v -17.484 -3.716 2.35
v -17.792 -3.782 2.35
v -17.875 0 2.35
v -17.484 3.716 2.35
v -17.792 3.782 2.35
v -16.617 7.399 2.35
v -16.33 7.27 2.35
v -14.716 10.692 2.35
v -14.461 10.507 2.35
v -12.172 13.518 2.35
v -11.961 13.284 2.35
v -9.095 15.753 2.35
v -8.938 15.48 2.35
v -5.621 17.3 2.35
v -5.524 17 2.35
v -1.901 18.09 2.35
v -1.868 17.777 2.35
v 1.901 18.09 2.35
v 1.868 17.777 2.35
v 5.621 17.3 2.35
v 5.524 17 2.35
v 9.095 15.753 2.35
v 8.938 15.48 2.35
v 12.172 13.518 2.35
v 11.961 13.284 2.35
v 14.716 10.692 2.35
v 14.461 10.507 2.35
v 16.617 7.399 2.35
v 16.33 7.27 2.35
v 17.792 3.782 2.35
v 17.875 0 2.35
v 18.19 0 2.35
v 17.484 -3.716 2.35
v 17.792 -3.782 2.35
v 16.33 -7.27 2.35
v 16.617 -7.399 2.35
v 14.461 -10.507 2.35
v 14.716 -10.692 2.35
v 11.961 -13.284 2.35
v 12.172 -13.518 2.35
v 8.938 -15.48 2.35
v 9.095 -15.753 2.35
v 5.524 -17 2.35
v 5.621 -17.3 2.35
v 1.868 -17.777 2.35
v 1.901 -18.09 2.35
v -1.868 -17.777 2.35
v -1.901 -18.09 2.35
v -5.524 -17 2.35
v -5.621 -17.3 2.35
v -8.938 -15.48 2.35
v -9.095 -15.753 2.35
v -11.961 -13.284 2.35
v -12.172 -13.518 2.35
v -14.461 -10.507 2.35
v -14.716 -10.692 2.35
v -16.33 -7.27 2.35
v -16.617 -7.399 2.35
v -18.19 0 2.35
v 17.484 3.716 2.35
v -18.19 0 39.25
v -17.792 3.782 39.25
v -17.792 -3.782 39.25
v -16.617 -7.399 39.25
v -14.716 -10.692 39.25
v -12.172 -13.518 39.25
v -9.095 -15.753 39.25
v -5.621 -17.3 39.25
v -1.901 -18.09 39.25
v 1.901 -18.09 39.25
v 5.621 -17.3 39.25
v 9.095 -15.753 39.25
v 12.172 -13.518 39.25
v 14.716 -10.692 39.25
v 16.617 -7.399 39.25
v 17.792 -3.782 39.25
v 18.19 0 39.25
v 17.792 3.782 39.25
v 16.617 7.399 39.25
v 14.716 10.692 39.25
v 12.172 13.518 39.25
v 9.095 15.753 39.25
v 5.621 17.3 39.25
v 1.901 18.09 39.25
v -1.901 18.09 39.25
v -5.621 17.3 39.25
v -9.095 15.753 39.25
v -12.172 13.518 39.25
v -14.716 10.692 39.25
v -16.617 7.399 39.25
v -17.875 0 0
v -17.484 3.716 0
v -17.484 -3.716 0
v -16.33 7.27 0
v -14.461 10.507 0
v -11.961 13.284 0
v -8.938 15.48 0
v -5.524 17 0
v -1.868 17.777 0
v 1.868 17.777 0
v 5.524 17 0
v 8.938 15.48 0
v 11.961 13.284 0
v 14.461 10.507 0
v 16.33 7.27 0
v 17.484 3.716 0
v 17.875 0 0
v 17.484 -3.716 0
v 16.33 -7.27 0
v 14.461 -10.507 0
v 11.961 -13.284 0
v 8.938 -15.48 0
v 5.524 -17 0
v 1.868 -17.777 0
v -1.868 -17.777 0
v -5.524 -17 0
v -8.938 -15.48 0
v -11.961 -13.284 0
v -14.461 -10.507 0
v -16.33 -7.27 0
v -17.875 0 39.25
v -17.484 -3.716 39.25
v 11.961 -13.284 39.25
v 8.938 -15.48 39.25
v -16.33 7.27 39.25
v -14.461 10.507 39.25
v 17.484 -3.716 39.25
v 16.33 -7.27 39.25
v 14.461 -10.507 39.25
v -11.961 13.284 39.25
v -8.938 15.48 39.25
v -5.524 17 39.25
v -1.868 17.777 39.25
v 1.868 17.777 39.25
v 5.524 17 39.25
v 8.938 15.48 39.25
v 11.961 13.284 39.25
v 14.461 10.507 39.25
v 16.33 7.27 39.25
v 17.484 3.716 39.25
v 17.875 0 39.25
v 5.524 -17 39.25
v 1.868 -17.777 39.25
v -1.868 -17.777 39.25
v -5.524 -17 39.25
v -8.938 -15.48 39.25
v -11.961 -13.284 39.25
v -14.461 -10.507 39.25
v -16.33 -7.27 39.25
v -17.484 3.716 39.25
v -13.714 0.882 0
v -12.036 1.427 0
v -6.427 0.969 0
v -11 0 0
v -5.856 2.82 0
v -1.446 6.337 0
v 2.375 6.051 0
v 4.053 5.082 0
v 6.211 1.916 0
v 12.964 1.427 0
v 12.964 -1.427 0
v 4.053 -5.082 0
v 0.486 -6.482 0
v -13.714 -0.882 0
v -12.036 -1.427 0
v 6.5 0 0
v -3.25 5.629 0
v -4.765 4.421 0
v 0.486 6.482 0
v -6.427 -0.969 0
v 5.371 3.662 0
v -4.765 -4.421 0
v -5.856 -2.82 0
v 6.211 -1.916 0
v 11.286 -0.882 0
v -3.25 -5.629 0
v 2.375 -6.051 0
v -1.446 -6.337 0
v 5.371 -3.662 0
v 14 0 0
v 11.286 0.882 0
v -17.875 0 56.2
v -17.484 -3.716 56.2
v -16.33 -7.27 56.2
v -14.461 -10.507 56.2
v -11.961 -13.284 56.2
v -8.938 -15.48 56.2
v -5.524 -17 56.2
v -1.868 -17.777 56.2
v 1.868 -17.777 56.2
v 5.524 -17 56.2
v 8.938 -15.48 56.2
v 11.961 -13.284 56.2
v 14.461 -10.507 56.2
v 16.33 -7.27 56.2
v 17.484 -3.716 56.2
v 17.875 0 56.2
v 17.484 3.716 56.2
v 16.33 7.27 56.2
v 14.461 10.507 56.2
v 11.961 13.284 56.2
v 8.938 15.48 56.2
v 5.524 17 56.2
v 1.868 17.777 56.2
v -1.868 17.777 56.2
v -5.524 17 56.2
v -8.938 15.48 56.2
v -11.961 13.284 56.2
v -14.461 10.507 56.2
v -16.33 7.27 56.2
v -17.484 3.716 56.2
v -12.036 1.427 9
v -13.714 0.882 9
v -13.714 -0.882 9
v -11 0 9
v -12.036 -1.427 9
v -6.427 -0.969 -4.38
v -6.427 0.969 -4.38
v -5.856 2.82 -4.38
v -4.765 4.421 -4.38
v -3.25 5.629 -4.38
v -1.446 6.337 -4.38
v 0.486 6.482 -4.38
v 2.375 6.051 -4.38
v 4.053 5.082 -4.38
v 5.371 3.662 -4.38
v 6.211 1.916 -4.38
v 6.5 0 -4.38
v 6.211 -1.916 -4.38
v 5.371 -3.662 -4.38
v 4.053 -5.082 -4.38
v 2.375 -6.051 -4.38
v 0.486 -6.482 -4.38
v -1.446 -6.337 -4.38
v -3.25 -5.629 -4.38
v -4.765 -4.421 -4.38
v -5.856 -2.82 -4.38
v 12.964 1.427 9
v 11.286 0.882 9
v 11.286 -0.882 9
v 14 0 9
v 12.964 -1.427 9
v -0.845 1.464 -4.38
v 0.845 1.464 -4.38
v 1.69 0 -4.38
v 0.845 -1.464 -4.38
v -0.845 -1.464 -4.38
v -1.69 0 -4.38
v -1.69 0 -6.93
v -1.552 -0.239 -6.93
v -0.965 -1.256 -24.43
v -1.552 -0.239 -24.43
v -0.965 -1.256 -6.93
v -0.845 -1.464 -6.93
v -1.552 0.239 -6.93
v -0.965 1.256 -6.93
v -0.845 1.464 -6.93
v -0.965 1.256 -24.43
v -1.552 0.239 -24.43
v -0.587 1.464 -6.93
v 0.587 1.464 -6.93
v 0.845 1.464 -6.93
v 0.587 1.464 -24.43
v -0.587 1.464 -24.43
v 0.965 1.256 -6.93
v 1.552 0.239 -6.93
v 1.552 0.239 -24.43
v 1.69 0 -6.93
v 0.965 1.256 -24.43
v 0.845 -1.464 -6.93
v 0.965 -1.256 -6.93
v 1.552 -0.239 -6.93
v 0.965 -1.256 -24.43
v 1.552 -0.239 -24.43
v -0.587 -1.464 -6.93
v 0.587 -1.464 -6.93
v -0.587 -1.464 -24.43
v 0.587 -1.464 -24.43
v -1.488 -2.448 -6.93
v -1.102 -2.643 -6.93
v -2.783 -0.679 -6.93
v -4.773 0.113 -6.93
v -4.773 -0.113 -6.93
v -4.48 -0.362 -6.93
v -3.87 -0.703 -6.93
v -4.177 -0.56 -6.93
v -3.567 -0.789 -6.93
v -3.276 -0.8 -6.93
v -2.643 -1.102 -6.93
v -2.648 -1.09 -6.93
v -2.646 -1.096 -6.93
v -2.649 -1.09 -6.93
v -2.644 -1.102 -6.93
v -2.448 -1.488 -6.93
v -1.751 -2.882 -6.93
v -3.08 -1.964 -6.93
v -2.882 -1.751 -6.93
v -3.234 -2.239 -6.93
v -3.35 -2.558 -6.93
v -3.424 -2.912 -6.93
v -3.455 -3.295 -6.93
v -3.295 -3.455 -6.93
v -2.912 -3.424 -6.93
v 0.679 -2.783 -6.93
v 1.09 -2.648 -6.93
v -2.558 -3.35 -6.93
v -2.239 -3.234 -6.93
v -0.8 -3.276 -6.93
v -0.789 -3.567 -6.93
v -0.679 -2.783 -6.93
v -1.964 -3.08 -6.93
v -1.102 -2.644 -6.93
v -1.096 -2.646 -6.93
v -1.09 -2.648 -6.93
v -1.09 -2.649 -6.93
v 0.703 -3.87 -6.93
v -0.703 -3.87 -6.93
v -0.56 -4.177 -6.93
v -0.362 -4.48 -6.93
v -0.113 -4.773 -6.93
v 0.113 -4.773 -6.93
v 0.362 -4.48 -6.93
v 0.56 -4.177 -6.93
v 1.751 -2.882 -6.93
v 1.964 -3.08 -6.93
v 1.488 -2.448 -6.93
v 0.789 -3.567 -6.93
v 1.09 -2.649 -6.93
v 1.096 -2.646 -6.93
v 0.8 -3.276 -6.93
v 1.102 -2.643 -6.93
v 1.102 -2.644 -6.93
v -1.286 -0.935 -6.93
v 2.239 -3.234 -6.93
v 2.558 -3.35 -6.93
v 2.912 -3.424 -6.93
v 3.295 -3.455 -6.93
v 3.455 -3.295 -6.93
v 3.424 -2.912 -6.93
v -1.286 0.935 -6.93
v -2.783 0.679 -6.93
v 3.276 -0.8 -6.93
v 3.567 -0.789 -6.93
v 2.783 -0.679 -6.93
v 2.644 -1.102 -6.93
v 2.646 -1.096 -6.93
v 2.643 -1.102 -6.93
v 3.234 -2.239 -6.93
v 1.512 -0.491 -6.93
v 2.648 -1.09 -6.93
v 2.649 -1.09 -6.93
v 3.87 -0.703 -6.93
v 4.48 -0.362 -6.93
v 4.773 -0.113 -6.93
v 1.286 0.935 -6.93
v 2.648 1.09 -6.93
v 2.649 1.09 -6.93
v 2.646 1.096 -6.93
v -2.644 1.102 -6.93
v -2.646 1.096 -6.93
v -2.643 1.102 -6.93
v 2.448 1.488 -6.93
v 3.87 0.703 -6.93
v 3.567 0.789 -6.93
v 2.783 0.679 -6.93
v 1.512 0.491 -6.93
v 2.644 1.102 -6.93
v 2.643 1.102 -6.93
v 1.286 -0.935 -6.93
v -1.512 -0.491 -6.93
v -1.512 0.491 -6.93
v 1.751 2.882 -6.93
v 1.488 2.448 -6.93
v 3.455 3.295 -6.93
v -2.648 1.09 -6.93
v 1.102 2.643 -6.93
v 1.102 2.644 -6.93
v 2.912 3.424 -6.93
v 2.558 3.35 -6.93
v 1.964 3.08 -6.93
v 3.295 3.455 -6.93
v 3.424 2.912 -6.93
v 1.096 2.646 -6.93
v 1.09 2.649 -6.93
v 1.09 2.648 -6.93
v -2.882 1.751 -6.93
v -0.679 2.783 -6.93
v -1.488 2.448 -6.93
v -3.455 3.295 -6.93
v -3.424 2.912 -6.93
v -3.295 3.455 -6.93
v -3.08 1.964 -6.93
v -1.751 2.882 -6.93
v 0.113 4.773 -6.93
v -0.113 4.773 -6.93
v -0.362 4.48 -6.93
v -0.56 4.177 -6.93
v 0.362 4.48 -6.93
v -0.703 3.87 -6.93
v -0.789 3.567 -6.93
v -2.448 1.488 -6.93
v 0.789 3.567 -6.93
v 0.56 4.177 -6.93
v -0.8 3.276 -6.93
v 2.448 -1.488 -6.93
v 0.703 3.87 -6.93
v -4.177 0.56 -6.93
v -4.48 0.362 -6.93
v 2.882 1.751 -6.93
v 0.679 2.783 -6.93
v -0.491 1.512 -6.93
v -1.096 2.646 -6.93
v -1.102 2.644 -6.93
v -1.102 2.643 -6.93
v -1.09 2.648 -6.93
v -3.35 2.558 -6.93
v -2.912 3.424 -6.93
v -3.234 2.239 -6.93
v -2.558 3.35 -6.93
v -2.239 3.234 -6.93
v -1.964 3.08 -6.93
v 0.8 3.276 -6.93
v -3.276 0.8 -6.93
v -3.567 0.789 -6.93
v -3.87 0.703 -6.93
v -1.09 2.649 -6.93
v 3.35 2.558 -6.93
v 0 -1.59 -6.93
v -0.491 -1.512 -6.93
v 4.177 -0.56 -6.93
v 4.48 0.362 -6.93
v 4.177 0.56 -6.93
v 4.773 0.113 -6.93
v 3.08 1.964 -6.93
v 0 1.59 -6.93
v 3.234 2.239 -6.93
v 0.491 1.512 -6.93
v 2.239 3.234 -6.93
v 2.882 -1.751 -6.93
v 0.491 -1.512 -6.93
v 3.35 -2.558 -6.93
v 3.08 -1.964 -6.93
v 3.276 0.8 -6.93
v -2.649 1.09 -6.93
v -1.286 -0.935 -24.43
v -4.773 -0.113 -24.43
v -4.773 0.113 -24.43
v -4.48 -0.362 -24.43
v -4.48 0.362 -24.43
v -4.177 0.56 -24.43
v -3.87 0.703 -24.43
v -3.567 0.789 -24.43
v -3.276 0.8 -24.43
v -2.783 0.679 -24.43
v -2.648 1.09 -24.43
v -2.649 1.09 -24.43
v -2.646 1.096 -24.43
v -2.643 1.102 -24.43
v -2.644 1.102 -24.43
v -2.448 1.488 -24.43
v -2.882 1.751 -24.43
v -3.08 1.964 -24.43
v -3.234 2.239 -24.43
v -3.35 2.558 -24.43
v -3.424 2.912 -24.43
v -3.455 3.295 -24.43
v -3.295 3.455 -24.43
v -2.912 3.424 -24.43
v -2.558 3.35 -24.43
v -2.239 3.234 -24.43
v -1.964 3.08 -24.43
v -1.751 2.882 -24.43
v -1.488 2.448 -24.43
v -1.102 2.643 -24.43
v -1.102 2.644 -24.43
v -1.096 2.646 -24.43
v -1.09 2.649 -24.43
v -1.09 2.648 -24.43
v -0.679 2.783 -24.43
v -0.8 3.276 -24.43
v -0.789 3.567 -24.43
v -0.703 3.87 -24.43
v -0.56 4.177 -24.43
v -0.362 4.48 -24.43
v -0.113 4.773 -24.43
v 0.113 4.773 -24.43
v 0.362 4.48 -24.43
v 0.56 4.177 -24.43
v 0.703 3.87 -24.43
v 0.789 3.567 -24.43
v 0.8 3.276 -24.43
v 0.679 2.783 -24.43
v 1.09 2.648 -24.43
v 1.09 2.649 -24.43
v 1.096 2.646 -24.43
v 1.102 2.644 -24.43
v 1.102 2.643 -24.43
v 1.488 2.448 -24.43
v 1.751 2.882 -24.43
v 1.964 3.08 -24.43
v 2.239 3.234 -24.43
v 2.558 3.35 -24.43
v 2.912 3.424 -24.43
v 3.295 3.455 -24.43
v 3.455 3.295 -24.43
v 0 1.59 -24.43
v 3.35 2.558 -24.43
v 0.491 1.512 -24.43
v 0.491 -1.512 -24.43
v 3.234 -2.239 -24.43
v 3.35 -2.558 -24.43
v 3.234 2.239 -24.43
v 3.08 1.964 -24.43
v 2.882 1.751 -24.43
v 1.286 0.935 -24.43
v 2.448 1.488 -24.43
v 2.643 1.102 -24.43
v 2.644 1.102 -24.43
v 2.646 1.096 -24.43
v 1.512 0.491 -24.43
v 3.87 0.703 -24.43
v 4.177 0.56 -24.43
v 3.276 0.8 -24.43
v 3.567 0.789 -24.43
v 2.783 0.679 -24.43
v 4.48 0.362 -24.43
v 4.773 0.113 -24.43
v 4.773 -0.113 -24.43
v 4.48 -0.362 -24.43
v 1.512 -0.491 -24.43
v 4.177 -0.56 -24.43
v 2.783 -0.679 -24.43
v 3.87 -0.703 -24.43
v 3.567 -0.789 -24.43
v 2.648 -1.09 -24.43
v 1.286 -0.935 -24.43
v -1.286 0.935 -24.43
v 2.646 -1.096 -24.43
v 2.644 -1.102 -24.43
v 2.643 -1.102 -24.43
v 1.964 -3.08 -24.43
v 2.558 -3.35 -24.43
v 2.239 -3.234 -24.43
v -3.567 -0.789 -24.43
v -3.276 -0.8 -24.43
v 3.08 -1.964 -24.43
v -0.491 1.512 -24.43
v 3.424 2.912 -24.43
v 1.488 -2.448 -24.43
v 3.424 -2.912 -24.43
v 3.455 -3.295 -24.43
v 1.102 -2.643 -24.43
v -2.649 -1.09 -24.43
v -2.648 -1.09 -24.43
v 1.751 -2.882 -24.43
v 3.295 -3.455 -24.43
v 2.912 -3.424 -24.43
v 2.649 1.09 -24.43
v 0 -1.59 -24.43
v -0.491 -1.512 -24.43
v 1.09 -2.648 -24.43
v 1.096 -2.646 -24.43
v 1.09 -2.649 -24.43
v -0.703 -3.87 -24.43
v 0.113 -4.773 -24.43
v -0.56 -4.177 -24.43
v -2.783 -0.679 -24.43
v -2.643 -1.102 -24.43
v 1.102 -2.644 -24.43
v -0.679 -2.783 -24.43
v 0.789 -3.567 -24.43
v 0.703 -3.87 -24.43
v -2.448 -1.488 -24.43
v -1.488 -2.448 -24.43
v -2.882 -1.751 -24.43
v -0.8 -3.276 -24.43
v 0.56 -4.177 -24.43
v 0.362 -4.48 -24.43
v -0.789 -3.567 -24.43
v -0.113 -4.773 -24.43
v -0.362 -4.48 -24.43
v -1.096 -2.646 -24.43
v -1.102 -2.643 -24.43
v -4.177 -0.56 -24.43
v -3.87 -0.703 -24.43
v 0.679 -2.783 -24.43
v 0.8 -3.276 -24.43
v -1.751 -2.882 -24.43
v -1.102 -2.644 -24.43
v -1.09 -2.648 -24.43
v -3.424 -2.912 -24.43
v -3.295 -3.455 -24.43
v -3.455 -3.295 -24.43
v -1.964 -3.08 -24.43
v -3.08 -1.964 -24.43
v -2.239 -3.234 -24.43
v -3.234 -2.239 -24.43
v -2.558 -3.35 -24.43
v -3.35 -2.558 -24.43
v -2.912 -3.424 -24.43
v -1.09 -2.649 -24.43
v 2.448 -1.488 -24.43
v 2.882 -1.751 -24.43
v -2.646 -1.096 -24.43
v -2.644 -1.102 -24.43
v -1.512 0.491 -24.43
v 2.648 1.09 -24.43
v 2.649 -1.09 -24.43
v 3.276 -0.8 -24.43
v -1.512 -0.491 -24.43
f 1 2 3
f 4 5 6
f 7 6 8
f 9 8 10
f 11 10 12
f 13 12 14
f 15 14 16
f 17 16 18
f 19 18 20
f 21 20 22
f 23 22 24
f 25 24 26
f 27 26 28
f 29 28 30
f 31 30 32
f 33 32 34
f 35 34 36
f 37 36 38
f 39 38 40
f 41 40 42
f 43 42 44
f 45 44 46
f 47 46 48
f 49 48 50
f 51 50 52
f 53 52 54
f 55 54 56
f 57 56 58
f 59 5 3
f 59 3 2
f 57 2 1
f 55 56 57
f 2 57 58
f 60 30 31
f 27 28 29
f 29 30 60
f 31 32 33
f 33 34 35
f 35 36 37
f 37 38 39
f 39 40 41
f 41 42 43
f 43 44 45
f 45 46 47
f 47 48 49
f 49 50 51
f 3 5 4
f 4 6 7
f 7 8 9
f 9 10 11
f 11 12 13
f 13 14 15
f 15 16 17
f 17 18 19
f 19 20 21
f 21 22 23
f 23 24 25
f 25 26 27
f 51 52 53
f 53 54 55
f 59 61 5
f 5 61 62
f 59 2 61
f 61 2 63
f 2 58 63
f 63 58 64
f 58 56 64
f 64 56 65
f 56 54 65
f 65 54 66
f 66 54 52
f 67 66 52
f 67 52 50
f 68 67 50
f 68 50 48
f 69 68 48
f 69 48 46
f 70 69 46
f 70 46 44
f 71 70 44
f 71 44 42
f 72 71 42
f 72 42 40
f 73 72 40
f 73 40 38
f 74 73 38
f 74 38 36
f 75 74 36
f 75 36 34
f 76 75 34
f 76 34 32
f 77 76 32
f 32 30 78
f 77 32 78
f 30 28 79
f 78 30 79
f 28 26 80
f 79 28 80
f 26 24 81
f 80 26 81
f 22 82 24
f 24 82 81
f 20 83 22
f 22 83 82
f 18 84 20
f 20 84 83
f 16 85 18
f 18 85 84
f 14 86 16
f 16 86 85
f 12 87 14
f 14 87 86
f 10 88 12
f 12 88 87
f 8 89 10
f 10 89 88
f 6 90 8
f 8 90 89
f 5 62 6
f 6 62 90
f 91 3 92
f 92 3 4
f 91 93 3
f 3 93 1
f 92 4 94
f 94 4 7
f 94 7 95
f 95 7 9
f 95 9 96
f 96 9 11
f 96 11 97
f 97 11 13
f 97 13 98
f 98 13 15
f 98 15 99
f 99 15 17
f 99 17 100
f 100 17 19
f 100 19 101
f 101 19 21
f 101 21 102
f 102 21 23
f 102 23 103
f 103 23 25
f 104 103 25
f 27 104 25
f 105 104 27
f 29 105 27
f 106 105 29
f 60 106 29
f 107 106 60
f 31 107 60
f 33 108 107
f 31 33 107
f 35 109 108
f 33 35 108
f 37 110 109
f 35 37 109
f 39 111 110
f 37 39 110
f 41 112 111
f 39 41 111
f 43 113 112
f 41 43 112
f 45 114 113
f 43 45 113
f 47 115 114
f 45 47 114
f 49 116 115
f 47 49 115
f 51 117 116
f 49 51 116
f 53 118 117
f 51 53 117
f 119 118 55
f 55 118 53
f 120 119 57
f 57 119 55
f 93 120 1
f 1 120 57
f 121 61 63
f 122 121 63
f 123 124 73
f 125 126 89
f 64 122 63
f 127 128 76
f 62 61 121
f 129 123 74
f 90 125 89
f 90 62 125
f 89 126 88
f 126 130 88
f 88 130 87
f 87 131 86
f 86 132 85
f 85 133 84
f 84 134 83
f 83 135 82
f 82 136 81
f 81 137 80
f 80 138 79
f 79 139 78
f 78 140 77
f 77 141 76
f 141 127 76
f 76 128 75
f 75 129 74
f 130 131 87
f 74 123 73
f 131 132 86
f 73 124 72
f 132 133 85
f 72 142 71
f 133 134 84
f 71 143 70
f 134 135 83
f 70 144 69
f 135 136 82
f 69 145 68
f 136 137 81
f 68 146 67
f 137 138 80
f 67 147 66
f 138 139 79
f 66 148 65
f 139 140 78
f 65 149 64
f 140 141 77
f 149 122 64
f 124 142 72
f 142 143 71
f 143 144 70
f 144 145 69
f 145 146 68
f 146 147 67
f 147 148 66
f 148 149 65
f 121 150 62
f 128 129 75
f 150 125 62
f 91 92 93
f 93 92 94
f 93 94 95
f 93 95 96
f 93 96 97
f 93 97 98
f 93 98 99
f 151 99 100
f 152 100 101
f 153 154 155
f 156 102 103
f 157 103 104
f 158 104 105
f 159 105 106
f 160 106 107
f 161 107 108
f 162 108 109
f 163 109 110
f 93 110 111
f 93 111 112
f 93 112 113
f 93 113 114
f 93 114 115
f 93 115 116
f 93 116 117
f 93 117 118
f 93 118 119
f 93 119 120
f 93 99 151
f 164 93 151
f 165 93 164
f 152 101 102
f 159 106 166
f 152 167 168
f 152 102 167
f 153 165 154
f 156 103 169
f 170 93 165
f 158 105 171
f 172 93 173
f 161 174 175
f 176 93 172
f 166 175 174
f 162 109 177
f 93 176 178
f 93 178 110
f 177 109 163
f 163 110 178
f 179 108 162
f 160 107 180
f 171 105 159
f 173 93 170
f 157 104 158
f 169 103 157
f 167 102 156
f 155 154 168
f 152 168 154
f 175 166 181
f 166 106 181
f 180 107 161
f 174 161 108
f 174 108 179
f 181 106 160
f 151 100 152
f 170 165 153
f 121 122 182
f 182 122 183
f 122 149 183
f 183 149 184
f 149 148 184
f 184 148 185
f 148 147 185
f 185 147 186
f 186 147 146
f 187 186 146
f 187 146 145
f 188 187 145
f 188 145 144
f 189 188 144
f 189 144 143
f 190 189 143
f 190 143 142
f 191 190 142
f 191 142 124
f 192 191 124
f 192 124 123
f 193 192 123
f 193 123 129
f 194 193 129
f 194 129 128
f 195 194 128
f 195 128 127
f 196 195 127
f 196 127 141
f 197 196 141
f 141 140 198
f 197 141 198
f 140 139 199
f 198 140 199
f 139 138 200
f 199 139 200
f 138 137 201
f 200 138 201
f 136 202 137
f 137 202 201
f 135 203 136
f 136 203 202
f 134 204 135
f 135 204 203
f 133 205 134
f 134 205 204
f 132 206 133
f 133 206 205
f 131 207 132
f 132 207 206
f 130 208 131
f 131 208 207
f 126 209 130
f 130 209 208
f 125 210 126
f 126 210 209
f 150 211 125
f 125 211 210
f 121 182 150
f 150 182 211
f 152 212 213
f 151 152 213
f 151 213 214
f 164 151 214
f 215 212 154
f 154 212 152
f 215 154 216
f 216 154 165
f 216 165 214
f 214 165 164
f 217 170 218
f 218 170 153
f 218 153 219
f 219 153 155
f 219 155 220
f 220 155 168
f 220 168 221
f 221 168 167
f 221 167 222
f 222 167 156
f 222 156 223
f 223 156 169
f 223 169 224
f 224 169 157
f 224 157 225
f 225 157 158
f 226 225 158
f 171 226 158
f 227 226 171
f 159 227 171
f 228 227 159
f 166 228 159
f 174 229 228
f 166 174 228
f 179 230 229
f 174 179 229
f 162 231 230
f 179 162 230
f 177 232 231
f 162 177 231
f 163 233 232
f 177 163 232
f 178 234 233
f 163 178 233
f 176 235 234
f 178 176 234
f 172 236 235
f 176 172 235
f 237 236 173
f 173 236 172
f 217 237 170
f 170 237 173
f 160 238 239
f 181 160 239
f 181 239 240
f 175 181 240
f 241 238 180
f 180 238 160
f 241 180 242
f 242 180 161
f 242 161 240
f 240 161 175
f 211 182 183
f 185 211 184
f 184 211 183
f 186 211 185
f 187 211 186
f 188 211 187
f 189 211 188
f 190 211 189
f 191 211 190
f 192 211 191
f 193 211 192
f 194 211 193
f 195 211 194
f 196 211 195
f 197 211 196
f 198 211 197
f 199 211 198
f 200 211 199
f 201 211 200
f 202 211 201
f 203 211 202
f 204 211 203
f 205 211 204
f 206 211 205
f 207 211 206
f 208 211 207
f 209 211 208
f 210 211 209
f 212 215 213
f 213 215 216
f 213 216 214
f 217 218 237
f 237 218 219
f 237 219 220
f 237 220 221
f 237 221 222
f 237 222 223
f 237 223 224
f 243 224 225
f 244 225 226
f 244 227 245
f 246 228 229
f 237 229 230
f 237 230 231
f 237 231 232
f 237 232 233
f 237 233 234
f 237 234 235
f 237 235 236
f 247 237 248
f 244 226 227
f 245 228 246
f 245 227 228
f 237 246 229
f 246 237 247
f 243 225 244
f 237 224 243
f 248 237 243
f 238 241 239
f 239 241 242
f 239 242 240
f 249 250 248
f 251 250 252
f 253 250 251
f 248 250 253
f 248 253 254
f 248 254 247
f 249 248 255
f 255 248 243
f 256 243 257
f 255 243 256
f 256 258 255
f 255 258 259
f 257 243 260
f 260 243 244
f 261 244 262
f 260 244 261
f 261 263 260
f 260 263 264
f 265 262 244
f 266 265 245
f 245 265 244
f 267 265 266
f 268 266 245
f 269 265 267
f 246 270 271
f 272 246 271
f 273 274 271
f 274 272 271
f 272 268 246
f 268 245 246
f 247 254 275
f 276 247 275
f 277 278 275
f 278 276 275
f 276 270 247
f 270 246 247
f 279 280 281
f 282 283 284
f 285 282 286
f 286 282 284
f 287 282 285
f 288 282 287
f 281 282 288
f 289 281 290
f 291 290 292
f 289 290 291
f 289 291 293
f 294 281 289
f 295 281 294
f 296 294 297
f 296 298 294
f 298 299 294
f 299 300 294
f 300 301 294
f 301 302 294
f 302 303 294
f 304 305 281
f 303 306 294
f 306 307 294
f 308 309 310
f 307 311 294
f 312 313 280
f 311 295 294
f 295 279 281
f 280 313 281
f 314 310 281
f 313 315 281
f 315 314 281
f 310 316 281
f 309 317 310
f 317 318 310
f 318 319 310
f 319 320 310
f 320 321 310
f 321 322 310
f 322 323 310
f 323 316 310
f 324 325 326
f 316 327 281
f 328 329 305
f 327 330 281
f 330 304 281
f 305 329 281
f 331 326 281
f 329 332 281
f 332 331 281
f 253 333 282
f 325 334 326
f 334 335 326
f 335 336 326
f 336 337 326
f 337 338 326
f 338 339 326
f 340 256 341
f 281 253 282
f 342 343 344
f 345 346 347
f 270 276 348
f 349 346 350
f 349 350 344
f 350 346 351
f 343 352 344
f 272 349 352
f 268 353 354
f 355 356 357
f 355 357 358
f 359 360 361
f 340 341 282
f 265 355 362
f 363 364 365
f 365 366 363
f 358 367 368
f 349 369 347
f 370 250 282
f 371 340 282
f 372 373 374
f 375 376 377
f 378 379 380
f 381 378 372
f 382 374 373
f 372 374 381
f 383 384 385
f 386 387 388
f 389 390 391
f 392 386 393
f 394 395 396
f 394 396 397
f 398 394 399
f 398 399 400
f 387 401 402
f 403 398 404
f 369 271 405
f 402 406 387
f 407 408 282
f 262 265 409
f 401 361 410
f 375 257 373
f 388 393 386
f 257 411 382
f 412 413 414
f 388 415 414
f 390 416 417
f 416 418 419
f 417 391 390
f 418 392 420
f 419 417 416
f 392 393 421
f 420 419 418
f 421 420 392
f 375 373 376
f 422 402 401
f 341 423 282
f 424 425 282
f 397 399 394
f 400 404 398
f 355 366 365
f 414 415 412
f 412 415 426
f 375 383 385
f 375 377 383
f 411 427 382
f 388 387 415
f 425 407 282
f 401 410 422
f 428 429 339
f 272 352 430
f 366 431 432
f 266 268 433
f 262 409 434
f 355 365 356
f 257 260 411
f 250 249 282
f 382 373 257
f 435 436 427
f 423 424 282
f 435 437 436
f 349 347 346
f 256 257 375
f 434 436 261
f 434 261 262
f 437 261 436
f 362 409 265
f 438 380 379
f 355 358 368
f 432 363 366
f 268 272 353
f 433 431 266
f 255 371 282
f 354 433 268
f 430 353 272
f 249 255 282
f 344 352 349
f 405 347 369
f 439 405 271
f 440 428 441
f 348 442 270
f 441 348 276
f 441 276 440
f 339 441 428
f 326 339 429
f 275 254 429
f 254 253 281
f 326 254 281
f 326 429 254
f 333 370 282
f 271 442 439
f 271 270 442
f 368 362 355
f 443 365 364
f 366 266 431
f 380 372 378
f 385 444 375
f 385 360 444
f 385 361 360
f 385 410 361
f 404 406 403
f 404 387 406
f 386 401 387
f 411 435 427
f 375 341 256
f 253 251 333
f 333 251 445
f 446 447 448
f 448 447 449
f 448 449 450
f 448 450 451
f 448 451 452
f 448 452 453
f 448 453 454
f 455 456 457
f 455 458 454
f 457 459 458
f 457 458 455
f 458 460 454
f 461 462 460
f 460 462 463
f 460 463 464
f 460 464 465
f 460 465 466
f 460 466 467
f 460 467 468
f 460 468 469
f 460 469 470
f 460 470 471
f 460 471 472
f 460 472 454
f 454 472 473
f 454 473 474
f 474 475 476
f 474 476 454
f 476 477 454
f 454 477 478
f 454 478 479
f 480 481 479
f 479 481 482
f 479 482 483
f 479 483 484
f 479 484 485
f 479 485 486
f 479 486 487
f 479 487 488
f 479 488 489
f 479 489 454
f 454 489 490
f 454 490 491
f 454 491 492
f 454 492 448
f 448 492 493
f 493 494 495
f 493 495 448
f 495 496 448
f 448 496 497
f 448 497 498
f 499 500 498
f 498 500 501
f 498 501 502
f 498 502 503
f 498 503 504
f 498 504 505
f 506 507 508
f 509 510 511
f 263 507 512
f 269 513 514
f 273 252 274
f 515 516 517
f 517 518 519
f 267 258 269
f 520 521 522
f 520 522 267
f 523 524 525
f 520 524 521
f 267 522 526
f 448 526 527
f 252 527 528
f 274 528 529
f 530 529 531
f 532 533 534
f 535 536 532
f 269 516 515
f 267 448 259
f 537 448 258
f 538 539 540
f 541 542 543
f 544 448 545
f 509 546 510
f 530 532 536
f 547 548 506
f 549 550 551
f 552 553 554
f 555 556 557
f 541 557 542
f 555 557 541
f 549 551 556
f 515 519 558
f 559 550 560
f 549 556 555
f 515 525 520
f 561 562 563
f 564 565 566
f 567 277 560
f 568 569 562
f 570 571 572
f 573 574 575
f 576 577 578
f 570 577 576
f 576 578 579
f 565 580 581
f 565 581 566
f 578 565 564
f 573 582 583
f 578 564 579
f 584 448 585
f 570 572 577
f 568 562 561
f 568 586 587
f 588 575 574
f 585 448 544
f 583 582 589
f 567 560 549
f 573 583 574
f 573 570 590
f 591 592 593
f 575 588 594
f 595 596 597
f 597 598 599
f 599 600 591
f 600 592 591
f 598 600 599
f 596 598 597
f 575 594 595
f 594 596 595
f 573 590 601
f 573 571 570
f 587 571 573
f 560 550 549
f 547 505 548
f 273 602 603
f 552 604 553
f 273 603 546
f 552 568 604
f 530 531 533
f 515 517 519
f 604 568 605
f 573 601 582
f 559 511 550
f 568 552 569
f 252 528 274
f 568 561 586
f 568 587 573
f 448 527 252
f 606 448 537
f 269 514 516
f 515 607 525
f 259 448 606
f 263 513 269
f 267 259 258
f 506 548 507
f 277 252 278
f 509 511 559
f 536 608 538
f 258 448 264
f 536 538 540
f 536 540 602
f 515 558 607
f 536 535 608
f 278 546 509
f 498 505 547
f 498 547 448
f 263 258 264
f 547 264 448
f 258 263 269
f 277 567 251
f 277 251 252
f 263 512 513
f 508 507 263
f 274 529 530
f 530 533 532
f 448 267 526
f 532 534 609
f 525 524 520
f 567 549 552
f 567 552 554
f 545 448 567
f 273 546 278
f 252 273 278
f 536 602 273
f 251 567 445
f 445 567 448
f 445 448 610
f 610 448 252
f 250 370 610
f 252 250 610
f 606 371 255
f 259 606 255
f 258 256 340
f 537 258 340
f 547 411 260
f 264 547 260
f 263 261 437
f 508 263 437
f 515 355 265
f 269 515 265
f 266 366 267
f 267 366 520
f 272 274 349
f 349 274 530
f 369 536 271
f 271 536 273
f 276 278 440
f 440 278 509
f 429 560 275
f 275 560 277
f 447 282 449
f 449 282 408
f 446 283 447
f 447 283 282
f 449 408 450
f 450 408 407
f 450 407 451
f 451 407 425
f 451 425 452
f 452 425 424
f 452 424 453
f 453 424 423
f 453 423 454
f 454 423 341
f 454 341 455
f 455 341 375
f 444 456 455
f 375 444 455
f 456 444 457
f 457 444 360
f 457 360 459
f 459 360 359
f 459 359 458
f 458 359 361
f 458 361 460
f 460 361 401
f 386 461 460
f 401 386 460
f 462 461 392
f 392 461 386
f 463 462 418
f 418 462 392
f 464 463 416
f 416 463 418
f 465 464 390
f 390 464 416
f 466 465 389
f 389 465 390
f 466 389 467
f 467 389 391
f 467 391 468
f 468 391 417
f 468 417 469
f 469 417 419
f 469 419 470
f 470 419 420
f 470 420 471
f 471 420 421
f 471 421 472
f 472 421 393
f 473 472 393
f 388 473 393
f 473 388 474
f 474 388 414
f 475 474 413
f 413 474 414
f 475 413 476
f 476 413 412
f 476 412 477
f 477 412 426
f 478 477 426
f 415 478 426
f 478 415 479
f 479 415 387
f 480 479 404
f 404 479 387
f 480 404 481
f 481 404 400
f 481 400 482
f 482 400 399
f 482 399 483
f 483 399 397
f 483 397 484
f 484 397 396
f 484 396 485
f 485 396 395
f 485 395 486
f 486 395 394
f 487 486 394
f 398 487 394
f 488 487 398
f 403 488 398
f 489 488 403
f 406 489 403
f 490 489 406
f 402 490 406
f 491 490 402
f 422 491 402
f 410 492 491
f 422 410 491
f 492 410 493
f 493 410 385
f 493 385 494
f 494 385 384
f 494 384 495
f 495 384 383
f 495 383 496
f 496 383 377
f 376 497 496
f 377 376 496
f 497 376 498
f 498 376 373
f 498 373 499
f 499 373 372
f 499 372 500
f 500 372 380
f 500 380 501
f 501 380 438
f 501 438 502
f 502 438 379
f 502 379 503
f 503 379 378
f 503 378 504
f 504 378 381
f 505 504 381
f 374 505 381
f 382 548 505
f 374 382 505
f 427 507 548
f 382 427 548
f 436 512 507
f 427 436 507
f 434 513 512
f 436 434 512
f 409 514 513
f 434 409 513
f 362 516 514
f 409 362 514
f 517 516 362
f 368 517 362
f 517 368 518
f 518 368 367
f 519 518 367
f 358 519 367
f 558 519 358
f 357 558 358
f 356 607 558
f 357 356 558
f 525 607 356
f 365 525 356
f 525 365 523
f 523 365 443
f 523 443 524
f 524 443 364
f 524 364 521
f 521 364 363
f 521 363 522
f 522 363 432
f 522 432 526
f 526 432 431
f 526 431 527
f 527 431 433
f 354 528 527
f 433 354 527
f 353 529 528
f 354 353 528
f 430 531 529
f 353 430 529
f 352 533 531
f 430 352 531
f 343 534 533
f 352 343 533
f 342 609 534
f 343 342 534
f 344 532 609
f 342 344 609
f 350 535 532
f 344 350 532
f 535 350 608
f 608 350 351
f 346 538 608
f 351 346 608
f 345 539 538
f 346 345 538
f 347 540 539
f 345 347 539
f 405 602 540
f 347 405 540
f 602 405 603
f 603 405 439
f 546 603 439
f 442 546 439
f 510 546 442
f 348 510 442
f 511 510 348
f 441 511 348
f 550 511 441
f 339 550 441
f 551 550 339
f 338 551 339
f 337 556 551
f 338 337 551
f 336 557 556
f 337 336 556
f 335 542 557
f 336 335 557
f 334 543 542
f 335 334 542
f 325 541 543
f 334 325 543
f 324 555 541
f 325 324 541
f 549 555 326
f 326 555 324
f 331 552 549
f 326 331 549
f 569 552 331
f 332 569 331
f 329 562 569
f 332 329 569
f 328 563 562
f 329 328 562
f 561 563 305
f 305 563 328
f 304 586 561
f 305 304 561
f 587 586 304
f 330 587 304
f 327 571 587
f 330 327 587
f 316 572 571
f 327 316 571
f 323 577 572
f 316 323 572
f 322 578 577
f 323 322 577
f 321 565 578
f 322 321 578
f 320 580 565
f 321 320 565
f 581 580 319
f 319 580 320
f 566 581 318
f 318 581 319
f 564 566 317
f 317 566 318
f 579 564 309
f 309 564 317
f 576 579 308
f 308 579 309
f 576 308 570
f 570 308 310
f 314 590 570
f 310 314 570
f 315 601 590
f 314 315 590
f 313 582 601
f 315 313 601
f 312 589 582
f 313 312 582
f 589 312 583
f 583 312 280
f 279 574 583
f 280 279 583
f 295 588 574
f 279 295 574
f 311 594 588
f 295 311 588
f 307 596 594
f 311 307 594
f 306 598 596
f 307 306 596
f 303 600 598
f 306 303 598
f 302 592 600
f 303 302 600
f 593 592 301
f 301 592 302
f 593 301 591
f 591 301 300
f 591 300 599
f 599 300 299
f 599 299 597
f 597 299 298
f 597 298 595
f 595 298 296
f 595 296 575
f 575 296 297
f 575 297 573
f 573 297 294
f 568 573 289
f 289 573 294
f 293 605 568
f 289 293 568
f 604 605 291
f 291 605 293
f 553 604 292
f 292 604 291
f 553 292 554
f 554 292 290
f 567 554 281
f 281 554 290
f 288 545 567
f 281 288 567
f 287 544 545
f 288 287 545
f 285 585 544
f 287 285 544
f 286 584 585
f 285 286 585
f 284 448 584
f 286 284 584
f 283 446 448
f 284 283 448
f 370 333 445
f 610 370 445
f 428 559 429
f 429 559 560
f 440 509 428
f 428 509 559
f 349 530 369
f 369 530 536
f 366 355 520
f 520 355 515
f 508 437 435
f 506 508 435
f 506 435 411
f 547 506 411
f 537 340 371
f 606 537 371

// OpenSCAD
use <../libraries/OpenSCAD/publicDomainGearV1.1.scad>

od = 35.75;
length = 56.2;
mounting_hole_ring = 28;
mounting_hole = 3;
bearing = 13;
bearing_height = 4.38;
shaft = 3.18;
gear = 9.81; // 8 teeth
gear_length = 17.5;
gear_bearing_clearance = 2.55;
sleeve = 36.38;
sleeve_length = 36.9;
sleeve_from_face = 2.35;

difference(){
	union(){
		// body
		color("purple")
		cylinder(r=od/2, h=length);

		// sleeve
		translate([0,0,sleeve_from_face]){
			color("blue")
			cylinder(r=sleeve/2, h=sleeve_length);
		}

		// front bearing
		translate([0,0,-bearing_height]){
			color("green")
			cylinder(r=bearing/2, h=bearing_height);
		}

		// gear
		translate([0,0,-((gear_length/2) + gear_bearing_clearance + bearing_height)]){
			color("orange")
			//cylinder(r=gear/2, h=gear_length);
			gear(
				mm_per_tooth = 3,
				number_of_teeth = 8,
				thickness = gear_length, //6,
				hole_diameter = shaft, //3,
				twist = 0,
				teeth_to_hide = 0,
				pressure_angle = 28,
				clearance = 0.0,
				backlash = 0.0
			);
		}

		// shaft
		translate([0,0,-(gear_length + gear_bearing_clearance + bearing_height)]){
			// NOTE: need extra .1 here for watertight model
			color("black")
			cylinder(r=(shaft/2)+.1, h=(gear_length + gear_bearing_clearance + bearing_height));
		}
	}

	// mounting holes
	translate([(mounting_hole_ring/2) - (mounting_hole/2),0,-1]){
		cylinder(r=mounting_hole/2,h=10);
	}

	translate([-((mounting_hole_ring/2) - (mounting_hole/2)),0,-1]){
		cylinder(r=mounting_hole/2,h=10);
	}
}
